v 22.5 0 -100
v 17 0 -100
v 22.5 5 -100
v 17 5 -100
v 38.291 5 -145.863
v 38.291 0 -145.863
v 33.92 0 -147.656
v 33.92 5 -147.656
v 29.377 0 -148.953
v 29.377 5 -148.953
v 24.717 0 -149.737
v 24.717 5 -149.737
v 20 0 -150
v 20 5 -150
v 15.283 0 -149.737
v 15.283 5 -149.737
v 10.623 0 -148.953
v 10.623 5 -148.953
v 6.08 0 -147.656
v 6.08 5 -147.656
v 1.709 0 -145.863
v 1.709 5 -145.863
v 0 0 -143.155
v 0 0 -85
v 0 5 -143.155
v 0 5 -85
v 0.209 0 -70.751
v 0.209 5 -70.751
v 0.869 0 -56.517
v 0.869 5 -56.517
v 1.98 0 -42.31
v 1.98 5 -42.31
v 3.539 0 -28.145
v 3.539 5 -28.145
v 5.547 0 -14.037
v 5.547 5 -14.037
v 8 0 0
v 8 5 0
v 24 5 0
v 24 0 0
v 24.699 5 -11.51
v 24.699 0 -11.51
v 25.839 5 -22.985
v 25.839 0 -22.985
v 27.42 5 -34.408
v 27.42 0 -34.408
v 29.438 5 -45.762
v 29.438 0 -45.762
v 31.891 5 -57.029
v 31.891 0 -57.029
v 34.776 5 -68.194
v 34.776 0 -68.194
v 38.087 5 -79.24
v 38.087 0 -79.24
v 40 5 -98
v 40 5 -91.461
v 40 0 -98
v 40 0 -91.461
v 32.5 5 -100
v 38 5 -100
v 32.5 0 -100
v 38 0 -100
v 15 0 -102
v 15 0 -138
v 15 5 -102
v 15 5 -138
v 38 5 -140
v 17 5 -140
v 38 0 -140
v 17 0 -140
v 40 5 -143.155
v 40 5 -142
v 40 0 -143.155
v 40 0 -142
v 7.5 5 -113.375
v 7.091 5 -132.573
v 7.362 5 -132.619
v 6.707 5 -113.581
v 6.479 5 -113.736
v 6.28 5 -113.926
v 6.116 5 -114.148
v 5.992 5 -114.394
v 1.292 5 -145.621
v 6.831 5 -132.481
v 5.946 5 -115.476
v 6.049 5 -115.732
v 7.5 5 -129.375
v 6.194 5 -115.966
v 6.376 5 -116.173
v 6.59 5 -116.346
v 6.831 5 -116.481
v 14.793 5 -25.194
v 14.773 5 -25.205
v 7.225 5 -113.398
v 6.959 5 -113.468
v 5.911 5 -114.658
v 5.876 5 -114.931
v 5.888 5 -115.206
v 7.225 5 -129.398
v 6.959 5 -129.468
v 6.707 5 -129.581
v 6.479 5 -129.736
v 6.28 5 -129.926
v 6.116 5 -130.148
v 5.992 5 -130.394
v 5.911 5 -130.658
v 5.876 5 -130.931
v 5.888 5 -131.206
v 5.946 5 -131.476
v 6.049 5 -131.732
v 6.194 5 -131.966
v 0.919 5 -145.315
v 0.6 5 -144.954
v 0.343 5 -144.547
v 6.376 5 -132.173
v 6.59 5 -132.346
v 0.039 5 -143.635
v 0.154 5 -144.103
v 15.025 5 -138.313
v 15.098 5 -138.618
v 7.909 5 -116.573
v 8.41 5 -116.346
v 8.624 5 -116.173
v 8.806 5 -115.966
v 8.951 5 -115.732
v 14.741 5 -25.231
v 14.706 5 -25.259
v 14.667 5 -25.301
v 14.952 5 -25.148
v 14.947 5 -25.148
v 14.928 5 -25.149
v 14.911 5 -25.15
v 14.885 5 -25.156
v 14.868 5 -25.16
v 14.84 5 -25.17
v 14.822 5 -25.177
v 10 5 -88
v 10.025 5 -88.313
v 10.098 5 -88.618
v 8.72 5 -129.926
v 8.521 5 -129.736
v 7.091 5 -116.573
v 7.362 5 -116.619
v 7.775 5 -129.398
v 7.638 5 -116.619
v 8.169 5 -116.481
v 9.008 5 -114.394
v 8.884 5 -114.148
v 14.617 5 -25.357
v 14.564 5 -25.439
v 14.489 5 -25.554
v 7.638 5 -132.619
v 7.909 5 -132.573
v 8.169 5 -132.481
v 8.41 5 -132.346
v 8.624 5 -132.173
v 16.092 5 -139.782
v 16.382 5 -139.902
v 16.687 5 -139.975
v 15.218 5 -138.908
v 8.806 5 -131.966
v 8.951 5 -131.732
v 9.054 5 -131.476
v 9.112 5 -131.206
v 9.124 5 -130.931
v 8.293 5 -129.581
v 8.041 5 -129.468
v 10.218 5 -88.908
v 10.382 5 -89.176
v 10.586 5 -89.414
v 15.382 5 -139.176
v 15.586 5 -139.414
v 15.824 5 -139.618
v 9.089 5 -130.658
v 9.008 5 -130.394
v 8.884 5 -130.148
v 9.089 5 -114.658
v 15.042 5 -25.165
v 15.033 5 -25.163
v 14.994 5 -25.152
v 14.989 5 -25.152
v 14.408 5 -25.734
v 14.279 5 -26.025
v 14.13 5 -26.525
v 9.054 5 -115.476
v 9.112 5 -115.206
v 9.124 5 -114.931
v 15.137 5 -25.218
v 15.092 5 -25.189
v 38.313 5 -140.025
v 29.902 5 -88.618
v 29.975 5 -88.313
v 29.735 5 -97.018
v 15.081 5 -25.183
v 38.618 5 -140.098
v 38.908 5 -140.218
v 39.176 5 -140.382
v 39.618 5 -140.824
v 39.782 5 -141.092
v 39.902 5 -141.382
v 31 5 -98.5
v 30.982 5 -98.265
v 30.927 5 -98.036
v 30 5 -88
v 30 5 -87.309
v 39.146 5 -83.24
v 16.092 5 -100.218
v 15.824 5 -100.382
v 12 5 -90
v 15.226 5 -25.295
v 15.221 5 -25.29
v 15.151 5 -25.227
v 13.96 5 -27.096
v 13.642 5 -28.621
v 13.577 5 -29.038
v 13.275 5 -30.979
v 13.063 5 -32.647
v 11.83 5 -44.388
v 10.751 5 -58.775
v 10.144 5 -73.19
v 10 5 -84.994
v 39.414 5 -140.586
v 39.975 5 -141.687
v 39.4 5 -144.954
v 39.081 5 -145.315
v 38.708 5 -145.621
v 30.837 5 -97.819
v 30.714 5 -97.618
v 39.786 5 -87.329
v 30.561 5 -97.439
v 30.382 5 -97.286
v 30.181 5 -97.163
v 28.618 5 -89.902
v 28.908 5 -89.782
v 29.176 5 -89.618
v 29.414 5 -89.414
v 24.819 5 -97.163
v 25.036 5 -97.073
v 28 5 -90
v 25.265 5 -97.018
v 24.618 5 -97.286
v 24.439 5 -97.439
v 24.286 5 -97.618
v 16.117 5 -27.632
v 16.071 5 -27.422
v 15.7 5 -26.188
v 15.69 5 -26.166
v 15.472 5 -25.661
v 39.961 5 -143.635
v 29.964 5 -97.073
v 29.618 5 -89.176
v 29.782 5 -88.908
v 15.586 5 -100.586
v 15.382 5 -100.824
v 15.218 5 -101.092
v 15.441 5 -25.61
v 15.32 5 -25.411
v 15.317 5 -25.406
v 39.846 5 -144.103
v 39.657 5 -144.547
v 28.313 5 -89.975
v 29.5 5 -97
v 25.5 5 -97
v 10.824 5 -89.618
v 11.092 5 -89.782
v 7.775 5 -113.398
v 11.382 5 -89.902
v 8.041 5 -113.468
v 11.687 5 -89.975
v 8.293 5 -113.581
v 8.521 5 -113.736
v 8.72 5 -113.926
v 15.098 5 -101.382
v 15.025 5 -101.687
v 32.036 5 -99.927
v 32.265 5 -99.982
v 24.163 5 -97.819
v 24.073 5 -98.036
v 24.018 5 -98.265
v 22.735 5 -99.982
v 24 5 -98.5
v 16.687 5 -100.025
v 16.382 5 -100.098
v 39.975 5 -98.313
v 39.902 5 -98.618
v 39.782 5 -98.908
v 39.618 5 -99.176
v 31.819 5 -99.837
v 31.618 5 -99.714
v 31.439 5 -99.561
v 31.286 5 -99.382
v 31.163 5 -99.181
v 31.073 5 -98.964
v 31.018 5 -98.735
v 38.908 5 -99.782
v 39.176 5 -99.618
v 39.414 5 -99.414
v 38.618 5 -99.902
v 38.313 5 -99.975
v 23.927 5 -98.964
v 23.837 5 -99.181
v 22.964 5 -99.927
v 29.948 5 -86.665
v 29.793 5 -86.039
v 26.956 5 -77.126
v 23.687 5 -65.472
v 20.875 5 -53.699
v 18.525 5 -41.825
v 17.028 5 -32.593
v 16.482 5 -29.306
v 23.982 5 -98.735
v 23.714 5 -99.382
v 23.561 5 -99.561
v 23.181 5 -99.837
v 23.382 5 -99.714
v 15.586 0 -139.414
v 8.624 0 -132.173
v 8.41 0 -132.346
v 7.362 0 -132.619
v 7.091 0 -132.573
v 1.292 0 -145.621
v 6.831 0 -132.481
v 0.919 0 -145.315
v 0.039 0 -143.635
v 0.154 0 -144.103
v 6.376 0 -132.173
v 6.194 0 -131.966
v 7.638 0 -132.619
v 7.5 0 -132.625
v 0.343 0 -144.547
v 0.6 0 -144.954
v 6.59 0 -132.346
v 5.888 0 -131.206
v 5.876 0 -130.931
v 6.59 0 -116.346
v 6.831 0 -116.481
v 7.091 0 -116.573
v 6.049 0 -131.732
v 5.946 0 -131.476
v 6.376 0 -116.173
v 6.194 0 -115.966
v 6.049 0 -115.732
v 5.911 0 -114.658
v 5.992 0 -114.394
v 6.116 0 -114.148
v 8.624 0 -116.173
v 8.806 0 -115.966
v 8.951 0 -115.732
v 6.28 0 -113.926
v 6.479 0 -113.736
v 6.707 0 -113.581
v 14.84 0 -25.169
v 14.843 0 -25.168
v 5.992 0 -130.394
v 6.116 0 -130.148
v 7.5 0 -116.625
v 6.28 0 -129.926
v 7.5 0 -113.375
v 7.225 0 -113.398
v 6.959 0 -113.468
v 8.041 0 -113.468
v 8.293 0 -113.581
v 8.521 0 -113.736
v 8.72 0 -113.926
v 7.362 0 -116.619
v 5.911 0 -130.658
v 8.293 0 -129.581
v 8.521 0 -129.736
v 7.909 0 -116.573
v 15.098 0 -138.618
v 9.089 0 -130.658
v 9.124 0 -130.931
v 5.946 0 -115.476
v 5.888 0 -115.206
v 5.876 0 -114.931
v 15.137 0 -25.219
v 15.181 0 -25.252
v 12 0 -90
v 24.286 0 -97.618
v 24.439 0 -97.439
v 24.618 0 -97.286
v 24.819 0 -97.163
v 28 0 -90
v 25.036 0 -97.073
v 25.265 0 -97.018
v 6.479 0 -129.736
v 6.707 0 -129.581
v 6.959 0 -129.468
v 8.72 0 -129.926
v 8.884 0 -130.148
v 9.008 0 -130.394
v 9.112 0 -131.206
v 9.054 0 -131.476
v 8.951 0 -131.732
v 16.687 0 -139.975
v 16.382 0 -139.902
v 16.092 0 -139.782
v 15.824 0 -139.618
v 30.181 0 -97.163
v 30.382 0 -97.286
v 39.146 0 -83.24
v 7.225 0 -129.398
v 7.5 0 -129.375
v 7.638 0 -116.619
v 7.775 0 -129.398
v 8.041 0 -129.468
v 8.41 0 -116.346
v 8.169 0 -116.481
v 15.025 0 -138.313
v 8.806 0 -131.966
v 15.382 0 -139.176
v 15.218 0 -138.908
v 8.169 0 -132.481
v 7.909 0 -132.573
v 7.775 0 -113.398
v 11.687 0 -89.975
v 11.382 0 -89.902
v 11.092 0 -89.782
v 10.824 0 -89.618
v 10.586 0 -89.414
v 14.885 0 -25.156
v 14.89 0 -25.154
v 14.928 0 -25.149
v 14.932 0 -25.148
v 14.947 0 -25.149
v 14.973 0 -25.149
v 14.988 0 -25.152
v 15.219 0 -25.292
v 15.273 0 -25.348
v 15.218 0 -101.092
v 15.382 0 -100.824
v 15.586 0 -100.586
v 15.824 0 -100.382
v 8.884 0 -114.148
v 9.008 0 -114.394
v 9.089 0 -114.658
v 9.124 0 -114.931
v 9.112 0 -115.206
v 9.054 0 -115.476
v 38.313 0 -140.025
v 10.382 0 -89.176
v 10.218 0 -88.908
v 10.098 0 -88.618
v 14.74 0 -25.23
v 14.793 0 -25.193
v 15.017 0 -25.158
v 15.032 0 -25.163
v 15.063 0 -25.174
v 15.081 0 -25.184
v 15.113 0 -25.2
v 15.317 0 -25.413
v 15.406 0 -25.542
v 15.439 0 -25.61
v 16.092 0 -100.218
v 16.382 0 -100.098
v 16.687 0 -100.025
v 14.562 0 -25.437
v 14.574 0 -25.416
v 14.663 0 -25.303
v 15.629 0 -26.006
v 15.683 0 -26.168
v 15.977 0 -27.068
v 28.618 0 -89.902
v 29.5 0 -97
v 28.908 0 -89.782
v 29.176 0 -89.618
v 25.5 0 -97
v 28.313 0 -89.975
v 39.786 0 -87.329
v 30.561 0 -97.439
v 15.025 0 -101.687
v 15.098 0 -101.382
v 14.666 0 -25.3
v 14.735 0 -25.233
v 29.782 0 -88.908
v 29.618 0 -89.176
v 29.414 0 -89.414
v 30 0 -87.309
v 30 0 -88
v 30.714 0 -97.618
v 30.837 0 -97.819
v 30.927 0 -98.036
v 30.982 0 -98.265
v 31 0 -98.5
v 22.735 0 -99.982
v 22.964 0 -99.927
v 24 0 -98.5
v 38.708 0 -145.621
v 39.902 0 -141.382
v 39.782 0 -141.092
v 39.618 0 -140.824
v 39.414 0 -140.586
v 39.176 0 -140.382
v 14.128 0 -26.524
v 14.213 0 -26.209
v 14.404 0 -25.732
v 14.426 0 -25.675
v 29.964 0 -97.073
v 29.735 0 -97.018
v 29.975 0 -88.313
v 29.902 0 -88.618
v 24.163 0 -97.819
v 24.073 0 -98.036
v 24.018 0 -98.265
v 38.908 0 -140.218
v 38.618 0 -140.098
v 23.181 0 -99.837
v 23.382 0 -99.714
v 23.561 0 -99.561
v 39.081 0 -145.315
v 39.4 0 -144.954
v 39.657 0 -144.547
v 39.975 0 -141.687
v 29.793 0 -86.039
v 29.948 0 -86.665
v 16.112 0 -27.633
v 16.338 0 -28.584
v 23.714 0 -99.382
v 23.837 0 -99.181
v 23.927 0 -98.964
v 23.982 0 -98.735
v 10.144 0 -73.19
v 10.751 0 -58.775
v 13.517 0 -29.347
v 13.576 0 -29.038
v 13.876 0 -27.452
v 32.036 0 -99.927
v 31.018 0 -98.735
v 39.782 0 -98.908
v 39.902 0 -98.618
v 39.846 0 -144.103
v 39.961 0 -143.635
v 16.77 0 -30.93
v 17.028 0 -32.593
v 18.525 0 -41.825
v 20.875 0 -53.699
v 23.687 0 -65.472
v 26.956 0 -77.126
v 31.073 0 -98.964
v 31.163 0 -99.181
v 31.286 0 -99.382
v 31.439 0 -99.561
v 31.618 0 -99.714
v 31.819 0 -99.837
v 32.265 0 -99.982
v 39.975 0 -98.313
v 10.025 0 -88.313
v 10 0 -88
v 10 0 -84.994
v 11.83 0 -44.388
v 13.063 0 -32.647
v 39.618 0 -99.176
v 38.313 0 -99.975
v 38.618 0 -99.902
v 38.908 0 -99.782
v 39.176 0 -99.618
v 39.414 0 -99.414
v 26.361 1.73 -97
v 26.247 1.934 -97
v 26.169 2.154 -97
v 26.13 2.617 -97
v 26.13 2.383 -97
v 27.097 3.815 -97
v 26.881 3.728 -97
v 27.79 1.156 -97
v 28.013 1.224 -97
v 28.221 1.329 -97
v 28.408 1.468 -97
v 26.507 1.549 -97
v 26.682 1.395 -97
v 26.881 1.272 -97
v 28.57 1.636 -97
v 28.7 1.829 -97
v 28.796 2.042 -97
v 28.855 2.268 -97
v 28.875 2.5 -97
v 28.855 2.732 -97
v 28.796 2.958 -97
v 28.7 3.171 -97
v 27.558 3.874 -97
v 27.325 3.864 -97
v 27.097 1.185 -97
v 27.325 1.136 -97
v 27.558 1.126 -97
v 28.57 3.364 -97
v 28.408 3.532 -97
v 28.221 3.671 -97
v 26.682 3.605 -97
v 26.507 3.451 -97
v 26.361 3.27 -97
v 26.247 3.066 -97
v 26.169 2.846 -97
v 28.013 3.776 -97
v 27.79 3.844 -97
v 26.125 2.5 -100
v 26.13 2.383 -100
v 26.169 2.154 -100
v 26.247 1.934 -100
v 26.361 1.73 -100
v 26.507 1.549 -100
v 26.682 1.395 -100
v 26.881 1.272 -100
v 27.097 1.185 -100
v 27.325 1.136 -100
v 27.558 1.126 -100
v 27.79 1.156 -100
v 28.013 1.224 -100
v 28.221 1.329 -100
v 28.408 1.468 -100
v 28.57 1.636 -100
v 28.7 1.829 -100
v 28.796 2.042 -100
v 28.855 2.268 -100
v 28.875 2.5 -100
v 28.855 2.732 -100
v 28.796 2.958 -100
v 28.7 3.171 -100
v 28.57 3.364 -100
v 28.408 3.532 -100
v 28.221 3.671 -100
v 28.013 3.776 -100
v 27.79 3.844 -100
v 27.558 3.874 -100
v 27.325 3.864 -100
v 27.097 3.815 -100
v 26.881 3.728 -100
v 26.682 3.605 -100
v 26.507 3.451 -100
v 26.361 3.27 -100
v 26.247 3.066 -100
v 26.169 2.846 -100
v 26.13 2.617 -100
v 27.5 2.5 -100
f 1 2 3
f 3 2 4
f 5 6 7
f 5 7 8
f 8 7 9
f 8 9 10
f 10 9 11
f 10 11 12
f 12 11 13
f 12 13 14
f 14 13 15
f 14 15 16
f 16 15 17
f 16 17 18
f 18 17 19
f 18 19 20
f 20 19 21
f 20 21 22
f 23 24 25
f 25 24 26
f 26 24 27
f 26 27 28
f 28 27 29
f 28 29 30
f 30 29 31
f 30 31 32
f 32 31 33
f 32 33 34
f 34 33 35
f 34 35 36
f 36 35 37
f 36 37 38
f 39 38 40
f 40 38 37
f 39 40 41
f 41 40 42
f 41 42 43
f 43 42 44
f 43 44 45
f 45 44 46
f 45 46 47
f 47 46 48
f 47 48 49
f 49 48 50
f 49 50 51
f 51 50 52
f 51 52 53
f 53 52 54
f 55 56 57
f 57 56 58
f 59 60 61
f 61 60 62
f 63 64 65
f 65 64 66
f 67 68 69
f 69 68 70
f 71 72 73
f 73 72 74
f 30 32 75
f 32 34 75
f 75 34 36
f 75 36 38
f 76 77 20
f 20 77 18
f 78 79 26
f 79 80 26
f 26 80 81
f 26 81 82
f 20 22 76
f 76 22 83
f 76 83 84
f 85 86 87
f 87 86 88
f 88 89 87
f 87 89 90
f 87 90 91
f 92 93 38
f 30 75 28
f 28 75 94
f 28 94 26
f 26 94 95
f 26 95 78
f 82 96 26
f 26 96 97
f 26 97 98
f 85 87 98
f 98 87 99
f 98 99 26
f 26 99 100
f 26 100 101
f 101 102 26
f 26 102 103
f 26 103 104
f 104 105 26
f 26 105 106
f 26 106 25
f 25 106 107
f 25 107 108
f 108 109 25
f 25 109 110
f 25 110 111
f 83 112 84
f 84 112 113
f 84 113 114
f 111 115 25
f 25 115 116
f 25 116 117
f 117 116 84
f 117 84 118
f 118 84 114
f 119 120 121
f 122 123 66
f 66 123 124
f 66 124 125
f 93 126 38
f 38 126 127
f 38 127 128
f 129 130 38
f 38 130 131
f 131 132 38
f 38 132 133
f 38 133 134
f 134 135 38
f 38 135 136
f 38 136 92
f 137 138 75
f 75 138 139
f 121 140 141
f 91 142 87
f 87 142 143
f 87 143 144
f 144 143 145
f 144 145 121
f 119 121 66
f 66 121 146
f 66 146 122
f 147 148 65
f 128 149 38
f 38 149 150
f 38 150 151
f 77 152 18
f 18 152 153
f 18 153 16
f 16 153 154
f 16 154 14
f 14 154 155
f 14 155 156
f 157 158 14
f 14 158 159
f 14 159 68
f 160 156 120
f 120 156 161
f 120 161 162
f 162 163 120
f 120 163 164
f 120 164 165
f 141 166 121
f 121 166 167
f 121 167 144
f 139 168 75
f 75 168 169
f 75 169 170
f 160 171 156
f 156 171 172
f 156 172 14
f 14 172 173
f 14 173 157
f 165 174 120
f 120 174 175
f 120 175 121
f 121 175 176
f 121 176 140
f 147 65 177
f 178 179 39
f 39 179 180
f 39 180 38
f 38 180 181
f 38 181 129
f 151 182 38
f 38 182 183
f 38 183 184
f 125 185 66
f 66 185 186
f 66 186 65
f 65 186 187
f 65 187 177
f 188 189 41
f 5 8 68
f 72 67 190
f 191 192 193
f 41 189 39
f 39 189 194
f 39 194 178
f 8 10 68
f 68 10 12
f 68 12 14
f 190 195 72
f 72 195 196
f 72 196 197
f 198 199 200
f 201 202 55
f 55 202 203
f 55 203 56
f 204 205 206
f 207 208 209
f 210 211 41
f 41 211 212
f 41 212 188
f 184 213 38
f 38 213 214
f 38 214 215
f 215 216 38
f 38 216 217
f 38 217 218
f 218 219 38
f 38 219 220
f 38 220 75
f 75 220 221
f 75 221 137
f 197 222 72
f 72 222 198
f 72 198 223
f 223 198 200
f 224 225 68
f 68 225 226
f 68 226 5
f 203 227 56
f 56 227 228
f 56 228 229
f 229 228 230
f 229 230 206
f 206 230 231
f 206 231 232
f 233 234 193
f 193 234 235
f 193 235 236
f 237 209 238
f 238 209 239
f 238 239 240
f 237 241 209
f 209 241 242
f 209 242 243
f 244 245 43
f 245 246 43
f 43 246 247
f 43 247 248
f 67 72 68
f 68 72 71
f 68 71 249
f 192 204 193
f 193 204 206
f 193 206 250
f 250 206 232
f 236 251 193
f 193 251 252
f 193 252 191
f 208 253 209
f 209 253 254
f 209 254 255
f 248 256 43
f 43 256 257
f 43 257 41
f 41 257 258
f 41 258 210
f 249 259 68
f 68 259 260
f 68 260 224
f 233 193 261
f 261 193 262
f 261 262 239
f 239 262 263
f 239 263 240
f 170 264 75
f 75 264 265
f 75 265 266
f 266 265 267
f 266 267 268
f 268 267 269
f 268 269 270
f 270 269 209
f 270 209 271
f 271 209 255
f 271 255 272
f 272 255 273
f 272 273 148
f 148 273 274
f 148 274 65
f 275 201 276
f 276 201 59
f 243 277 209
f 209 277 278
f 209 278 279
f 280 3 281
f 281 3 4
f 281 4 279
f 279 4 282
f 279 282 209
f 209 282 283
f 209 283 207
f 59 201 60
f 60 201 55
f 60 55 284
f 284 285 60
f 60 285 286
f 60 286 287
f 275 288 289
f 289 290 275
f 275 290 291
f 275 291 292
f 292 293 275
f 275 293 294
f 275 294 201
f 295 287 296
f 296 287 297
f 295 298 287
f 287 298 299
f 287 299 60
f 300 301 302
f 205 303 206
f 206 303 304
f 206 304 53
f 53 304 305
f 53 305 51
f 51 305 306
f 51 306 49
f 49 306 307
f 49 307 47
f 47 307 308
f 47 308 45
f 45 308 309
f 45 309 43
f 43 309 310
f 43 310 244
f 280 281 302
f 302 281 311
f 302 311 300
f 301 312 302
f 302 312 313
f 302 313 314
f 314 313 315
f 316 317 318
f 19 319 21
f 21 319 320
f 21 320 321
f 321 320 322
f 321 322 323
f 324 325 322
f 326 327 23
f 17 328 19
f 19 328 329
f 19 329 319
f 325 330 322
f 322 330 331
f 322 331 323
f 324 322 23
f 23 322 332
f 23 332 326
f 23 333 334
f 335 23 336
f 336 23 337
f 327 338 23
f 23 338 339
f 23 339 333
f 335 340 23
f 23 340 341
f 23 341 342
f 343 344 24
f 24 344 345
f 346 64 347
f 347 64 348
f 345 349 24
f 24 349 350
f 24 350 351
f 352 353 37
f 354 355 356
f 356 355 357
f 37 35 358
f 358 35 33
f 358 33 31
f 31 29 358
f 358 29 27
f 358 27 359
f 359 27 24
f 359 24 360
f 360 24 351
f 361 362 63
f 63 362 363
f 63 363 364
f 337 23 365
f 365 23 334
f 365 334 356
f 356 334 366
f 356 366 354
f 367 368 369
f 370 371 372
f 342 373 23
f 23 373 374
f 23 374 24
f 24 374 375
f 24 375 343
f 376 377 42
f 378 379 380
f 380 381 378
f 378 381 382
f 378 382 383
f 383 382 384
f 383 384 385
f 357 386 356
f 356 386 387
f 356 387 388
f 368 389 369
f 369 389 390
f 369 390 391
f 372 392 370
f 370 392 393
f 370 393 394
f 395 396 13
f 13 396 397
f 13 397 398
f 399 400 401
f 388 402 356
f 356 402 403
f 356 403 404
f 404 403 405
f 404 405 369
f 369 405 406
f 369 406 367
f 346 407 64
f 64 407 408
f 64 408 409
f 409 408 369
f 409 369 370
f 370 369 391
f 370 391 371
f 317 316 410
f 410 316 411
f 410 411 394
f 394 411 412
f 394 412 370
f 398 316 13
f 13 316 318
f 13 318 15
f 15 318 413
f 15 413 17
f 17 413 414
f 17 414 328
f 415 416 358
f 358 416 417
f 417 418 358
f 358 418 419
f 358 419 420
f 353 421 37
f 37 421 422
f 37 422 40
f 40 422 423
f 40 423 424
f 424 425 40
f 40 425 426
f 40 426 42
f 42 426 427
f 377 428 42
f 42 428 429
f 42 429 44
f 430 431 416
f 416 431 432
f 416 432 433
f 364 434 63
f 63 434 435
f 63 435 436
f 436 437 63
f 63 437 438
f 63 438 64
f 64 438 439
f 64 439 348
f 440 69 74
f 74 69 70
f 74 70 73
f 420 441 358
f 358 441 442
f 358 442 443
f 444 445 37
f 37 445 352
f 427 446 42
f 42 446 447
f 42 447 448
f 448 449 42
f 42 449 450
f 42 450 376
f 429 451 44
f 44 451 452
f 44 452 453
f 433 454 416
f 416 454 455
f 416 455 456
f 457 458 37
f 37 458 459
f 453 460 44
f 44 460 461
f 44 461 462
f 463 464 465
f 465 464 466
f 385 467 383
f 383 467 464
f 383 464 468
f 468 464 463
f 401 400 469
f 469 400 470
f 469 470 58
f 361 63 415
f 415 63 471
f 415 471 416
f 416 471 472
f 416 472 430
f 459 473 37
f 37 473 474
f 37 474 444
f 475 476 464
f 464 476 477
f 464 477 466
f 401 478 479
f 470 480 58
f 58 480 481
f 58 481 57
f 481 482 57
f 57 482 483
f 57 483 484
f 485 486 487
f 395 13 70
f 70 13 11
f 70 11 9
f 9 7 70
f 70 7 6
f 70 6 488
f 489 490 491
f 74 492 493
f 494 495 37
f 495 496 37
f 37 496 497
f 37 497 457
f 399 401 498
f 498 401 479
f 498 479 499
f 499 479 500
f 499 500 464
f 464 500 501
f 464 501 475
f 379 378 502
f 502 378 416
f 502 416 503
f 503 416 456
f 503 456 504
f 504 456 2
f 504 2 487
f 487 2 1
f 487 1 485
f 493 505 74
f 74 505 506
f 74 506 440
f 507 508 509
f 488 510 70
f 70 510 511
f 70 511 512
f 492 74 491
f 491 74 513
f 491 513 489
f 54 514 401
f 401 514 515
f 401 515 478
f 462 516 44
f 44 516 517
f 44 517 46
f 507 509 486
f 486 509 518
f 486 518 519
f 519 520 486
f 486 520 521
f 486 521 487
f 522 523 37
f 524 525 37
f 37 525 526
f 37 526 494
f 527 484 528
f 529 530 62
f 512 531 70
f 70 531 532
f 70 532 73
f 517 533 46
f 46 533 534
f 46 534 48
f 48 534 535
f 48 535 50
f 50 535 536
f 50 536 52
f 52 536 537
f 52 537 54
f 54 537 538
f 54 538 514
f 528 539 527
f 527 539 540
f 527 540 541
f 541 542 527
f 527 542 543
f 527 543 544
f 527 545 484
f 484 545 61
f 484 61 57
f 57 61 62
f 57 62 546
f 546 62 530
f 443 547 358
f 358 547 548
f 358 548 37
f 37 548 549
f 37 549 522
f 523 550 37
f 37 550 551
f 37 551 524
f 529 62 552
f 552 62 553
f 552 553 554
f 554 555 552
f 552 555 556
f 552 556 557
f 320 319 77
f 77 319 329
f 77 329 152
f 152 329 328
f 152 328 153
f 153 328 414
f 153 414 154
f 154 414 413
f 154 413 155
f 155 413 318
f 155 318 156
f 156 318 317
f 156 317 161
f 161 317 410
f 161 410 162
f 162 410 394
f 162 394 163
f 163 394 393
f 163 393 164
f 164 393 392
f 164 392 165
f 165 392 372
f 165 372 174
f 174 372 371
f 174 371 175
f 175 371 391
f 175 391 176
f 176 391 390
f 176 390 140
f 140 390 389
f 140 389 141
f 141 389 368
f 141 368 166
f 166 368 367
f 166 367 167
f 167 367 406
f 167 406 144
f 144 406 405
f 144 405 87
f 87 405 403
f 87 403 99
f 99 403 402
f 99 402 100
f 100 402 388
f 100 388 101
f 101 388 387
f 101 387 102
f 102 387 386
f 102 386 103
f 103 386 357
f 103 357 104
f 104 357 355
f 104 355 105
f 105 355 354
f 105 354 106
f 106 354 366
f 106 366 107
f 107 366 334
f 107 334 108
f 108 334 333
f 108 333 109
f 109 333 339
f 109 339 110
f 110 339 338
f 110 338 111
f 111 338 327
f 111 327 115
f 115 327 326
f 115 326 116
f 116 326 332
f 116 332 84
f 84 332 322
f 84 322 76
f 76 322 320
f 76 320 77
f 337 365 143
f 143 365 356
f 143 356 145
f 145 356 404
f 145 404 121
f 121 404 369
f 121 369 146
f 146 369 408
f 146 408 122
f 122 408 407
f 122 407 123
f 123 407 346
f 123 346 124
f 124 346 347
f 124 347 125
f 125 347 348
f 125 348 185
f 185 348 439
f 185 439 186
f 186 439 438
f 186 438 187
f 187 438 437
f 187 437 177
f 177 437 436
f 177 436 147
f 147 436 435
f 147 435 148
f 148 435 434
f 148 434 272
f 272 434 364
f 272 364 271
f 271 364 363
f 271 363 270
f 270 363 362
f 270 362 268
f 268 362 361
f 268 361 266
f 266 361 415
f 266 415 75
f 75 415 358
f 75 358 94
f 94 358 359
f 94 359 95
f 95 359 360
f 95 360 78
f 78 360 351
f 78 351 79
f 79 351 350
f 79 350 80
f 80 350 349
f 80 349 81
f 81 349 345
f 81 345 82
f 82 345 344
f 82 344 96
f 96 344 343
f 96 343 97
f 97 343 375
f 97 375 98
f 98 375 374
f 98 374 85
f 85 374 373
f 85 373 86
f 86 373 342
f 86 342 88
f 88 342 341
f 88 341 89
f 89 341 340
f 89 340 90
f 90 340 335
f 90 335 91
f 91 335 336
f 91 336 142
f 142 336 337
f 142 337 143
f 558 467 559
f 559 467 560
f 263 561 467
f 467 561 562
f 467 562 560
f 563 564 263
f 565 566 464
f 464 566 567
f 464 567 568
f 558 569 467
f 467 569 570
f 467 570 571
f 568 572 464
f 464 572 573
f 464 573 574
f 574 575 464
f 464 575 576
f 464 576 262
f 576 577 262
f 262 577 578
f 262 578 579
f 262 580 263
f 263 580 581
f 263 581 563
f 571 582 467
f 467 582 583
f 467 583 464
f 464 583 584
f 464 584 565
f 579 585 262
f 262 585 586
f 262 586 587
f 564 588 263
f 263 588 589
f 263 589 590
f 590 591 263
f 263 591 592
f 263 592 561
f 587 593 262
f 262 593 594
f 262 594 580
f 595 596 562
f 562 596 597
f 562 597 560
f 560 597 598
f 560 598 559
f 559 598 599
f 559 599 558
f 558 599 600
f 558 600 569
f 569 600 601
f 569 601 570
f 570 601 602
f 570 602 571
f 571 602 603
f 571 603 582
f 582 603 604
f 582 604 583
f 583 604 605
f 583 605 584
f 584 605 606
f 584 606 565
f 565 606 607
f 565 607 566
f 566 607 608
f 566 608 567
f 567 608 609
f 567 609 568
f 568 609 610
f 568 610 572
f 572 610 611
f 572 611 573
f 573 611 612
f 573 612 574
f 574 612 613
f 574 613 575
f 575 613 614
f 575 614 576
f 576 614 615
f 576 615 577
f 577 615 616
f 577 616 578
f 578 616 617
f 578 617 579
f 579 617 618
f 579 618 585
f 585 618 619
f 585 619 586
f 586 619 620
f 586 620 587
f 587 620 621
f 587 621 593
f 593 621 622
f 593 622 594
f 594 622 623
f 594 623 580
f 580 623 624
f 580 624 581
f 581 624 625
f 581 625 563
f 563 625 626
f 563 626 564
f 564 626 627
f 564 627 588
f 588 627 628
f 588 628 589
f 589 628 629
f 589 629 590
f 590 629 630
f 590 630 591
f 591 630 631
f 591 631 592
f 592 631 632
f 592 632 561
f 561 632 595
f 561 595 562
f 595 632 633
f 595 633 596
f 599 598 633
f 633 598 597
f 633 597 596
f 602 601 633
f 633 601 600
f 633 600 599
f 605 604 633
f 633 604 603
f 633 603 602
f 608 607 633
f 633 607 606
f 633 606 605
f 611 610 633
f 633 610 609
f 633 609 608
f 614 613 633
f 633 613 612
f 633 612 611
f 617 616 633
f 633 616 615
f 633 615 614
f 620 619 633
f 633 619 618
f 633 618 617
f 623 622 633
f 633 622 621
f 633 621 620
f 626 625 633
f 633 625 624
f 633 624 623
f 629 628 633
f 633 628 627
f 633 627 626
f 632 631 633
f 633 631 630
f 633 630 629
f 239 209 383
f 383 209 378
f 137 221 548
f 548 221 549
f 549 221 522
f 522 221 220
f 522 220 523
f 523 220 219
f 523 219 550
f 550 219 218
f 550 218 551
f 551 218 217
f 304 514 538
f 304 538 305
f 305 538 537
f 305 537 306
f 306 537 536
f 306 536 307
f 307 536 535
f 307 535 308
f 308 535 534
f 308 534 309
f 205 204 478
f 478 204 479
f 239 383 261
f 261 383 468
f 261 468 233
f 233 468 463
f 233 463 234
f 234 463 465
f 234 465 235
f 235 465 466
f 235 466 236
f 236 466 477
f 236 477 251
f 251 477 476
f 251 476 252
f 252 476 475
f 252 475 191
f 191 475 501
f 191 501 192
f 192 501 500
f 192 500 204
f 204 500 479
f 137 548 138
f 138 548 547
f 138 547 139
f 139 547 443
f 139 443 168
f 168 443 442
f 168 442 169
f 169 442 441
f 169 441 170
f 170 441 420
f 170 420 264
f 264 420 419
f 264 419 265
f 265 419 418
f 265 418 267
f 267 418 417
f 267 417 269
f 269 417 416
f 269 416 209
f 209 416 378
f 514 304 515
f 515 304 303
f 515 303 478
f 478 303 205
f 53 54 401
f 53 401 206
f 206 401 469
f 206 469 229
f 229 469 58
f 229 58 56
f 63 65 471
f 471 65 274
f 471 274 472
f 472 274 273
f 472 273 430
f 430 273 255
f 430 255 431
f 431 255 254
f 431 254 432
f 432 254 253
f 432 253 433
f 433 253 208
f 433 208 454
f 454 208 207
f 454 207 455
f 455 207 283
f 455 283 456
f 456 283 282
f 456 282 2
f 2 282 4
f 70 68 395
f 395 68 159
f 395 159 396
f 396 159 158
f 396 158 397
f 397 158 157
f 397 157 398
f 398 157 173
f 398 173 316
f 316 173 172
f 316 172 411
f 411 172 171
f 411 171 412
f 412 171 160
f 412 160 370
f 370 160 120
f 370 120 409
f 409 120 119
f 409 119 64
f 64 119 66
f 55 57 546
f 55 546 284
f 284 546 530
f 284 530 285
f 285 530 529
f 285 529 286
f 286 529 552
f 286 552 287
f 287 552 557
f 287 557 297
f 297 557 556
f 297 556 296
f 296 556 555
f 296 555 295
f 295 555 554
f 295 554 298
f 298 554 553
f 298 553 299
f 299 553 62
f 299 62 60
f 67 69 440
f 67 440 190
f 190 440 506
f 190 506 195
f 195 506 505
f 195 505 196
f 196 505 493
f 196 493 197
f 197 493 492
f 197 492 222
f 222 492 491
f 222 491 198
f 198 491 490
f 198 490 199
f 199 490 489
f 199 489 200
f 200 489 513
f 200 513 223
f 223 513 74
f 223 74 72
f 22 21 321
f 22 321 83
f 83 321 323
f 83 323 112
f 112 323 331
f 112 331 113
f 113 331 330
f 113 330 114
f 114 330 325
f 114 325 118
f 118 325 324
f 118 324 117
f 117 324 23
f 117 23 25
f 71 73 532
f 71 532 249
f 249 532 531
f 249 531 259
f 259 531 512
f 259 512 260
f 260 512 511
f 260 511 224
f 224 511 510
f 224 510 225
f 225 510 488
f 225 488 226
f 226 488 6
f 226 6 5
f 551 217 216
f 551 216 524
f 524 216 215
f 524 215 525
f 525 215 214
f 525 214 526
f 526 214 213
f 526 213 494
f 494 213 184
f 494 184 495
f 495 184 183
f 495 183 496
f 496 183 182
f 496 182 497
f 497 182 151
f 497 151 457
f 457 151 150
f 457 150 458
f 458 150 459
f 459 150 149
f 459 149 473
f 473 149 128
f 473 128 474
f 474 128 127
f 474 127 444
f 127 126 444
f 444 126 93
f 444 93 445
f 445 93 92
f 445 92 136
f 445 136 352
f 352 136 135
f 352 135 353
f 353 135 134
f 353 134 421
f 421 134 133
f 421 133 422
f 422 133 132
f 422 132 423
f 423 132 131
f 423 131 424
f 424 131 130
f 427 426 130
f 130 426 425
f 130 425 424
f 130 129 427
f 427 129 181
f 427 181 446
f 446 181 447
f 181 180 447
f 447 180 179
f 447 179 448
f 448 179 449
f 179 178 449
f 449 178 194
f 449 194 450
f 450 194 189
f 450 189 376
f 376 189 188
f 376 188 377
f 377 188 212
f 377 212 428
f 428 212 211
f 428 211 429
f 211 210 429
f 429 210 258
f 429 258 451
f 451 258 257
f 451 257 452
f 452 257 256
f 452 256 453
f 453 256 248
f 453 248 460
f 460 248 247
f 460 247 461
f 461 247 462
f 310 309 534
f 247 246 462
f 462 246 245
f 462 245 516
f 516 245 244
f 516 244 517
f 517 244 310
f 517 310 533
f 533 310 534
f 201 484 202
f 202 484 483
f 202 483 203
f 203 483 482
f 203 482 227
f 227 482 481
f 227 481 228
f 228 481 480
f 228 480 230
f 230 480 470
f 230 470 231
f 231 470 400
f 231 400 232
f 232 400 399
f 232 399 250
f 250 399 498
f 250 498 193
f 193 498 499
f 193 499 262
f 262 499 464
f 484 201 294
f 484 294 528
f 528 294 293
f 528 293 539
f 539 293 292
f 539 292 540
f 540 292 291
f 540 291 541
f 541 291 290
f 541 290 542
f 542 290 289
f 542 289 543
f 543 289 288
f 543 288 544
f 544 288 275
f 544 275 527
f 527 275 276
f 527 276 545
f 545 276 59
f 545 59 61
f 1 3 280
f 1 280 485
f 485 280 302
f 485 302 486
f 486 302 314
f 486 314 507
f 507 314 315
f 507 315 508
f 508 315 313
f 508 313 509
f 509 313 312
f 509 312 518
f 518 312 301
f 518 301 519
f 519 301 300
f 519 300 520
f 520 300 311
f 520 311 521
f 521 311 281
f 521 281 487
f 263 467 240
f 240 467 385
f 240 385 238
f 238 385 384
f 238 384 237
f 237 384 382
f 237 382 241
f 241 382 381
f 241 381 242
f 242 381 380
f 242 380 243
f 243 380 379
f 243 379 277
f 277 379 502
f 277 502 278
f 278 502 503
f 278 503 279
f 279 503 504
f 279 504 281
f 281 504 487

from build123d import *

# Parameters (mm, degrees)
BOSS_EXTRUDE1_DEPTH = 5
SKETCH2_R           = 1.625
CUT_EXTRUDE1_DEPTH  = 5
SKETCH3_W           = 7
SKETCH3_H           = 3
CUT_EXTRUDE2_DEPTH  = 5
SKETCH4_R           = 1.375
BOSS_EXTRUDE2_DEPTH = 3
CUT_EXTRUDE3_DEPTH  = 5
FILLET1_R           = 2
FILLET2_R           = 4
FILLET3_R           = 40
FILLET5_R           = 2
FILLET6_R           = 2
FILLET7_R           = 3
FILLET10_R          = 1.5


# Some blends are built 0.0001 mm under size
with BuildPart() as part:
    # Sketch1 → Boss-Extrude1 (new body)
    with BuildSketch(Plane(origin=(0, 0, 0), x_dir=(1, 0, 0), z_dir=(0, 1, 0))):
        with BuildLine():
            Line((0, 145), (0, 85))
            ThreePointArc((0, 85), (1.979630786, 42.309847603), (8, 0))
            Line((8, 0), (24, 0))
            ThreePointArc((24, 0), (28.920632518, 43.079645644), (40, 85))
            Line((40, 85), (40, 100))
            Line((40, 100), (15, 100))
            Line((15, 100), (15, 140))
            Line((15, 140), (40, 140))
            Line((40, 140), (40, 145))
            ThreePointArc((40, 145), (20, 150), (0, 145))
        make_face()
    extrude(amount=BOSS_EXTRUDE1_DEPTH)

    # Sketch2 → Cut-Extrude1 (cut)
    with BuildSketch(Plane(origin=(0, 5, 0), x_dir=(1, 0, 0), z_dir=(0, 1, 0))):
        with Locations(Location((7.5, 131, 0), (0, 0, 270))):
            Circle(SKETCH2_R)
        with Locations(Location((7.5, 115, 0), (0, 0, 270))):
            Circle(SKETCH2_R)
    extrude(amount=-CUT_EXTRUDE1_DEPTH, mode=Mode.SUBTRACT)

    # Sketch3 → Cut-Extrude2 (cut)
    with BuildSketch(Plane(origin=(0, 5, 0), x_dir=(1, 0, 0), z_dir=(0, 1, 0))):
        with Locations((27.5, 98.5)):
            Rectangle(SKETCH3_W, SKETCH3_H)
    extrude(amount=-CUT_EXTRUDE2_DEPTH, mode=Mode.SUBTRACT)

    # Sketch4 → Boss-Extrude2 (add)
    with BuildSketch(Plane(origin=(0, 0, -97), x_dir=(-1, 0, 0), z_dir=(0, 0, -1))):
        with Locations(Location((-27.5, 2.5, 0), (0, 0, 180))):
            Circle(SKETCH4_R)
    extrude(amount=BOSS_EXTRUDE2_DEPTH)

    # Sketch5 → Cut-Extrude3 (cut)
    with BuildSketch(Plane(origin=(0, 5, 0), x_dir=(1, 0, 0), z_dir=(0, 1, 0))):
        with BuildLine():
            Line((14, 90), (30, 90))
            Line((30, 90), (30, 87))
            Line((30, 87), (30, 86.654767806))
            ThreePointArc((30, 86.654767806), (20.590082312, 52.378278053), (15.165707783, 17.249935341))
            ThreePointArc((15.165707783, 17.249935341), (11.273342316, 51.022188328), (10, 84.994150003))
            Line((10, 84.994150003), (10, 90))
            Line((10, 90), (14, 90))
        make_face()
    extrude(amount=-CUT_EXTRUDE3_DEPTH, mode=Mode.SUBTRACT)

    # Fillet1
    fillet1_edges = [part.edges().sort_by_distance(p)[0] for p in [
        (10, 2.5, -90),
        (30, 2.5, -90),
    ]]
    fillet(fillet1_edges, radius=FILLET1_R)

    # Fillet2
    fillet2_edges = [part.edges().sort_by_distance(p)[0] for p in [
        (30, 2.5, -86.654767806),
    ]]
    fillet(fillet2_edges, radius=FILLET2_R)

    # Fillet3
    fillet3_edges = [part.edges().sort_by_distance(p)[0] for p in [
        (40, 2.5, -85),
    ]]
    fillet(fillet3_edges, radius=FILLET3_R)

    # Fillet5
    fillet5_edges = [part.edges().sort_by_distance(p)[0] for p in [
        (15, 2.5, -140),
        (15, 2.5, -100),
    ]]
    fillet(fillet5_edges, radius=FILLET5_R)

    # Fillet6
    fillet6_edges = [part.edges().sort_by_distance(p)[0] for p in [
        (40, 2.5, -140),
        (40, 2.5, -100),
    ]]
    fillet(fillet6_edges, radius=FILLET6_R)

    # Fillet7
    fillet7_edges = [part.edges().sort_by_distance(p)[0] for p in [
        (40, 2.5, -145),
        (0, 2.5, -145),
    ]]
    fillet(fillet7_edges, radius=FILLET7_R)

    # Fillet8
    # a fillet whose section is not a circle: 2 mm, written as the material it adds along each edge
    with BuildSketch(Plane(origin=(15.165707783, 5, -17.249935341), x_dir=(0.12048141281398392, 0, -0.9927155832192553), z_dir=(0, -1, 0))) as fillet8_piece_1:
        with BuildLine():
            Bezier((15.455336501, 0), (0.383468278, -0.375827748), (15.032037076, -3.942603658), weights=[1, 1, 1])
            ThreePointArc((15.032037076, -3.942603658), (7.498610953, -2.037672046), (0, 0))
            ThreePointArc((0, 0), (7.72766825, -0.096332478), (15.455336501, 0))
        make_face()
    extrude(amount=5)

    # Fillet10
    fillet10_edges = [part.edges().sort_by_distance(p)[0] for p in [
        (31, 2.5, -97),
        (24, 2.5, -97),
    ]]
    fillet(fillet10_edges, radius=FILLET10_R)
    fillet10_2_edges = [part.edges().sort_by_distance(p)[0] for p in [
        (31, 2.5, -100),
        (24, 2.5, -100),
    ]]
    fillet(fillet10_2_edges, radius=FILLET10_R - 0.0001)  # a hair under: the kernel refuses the full size


solid = part.part
